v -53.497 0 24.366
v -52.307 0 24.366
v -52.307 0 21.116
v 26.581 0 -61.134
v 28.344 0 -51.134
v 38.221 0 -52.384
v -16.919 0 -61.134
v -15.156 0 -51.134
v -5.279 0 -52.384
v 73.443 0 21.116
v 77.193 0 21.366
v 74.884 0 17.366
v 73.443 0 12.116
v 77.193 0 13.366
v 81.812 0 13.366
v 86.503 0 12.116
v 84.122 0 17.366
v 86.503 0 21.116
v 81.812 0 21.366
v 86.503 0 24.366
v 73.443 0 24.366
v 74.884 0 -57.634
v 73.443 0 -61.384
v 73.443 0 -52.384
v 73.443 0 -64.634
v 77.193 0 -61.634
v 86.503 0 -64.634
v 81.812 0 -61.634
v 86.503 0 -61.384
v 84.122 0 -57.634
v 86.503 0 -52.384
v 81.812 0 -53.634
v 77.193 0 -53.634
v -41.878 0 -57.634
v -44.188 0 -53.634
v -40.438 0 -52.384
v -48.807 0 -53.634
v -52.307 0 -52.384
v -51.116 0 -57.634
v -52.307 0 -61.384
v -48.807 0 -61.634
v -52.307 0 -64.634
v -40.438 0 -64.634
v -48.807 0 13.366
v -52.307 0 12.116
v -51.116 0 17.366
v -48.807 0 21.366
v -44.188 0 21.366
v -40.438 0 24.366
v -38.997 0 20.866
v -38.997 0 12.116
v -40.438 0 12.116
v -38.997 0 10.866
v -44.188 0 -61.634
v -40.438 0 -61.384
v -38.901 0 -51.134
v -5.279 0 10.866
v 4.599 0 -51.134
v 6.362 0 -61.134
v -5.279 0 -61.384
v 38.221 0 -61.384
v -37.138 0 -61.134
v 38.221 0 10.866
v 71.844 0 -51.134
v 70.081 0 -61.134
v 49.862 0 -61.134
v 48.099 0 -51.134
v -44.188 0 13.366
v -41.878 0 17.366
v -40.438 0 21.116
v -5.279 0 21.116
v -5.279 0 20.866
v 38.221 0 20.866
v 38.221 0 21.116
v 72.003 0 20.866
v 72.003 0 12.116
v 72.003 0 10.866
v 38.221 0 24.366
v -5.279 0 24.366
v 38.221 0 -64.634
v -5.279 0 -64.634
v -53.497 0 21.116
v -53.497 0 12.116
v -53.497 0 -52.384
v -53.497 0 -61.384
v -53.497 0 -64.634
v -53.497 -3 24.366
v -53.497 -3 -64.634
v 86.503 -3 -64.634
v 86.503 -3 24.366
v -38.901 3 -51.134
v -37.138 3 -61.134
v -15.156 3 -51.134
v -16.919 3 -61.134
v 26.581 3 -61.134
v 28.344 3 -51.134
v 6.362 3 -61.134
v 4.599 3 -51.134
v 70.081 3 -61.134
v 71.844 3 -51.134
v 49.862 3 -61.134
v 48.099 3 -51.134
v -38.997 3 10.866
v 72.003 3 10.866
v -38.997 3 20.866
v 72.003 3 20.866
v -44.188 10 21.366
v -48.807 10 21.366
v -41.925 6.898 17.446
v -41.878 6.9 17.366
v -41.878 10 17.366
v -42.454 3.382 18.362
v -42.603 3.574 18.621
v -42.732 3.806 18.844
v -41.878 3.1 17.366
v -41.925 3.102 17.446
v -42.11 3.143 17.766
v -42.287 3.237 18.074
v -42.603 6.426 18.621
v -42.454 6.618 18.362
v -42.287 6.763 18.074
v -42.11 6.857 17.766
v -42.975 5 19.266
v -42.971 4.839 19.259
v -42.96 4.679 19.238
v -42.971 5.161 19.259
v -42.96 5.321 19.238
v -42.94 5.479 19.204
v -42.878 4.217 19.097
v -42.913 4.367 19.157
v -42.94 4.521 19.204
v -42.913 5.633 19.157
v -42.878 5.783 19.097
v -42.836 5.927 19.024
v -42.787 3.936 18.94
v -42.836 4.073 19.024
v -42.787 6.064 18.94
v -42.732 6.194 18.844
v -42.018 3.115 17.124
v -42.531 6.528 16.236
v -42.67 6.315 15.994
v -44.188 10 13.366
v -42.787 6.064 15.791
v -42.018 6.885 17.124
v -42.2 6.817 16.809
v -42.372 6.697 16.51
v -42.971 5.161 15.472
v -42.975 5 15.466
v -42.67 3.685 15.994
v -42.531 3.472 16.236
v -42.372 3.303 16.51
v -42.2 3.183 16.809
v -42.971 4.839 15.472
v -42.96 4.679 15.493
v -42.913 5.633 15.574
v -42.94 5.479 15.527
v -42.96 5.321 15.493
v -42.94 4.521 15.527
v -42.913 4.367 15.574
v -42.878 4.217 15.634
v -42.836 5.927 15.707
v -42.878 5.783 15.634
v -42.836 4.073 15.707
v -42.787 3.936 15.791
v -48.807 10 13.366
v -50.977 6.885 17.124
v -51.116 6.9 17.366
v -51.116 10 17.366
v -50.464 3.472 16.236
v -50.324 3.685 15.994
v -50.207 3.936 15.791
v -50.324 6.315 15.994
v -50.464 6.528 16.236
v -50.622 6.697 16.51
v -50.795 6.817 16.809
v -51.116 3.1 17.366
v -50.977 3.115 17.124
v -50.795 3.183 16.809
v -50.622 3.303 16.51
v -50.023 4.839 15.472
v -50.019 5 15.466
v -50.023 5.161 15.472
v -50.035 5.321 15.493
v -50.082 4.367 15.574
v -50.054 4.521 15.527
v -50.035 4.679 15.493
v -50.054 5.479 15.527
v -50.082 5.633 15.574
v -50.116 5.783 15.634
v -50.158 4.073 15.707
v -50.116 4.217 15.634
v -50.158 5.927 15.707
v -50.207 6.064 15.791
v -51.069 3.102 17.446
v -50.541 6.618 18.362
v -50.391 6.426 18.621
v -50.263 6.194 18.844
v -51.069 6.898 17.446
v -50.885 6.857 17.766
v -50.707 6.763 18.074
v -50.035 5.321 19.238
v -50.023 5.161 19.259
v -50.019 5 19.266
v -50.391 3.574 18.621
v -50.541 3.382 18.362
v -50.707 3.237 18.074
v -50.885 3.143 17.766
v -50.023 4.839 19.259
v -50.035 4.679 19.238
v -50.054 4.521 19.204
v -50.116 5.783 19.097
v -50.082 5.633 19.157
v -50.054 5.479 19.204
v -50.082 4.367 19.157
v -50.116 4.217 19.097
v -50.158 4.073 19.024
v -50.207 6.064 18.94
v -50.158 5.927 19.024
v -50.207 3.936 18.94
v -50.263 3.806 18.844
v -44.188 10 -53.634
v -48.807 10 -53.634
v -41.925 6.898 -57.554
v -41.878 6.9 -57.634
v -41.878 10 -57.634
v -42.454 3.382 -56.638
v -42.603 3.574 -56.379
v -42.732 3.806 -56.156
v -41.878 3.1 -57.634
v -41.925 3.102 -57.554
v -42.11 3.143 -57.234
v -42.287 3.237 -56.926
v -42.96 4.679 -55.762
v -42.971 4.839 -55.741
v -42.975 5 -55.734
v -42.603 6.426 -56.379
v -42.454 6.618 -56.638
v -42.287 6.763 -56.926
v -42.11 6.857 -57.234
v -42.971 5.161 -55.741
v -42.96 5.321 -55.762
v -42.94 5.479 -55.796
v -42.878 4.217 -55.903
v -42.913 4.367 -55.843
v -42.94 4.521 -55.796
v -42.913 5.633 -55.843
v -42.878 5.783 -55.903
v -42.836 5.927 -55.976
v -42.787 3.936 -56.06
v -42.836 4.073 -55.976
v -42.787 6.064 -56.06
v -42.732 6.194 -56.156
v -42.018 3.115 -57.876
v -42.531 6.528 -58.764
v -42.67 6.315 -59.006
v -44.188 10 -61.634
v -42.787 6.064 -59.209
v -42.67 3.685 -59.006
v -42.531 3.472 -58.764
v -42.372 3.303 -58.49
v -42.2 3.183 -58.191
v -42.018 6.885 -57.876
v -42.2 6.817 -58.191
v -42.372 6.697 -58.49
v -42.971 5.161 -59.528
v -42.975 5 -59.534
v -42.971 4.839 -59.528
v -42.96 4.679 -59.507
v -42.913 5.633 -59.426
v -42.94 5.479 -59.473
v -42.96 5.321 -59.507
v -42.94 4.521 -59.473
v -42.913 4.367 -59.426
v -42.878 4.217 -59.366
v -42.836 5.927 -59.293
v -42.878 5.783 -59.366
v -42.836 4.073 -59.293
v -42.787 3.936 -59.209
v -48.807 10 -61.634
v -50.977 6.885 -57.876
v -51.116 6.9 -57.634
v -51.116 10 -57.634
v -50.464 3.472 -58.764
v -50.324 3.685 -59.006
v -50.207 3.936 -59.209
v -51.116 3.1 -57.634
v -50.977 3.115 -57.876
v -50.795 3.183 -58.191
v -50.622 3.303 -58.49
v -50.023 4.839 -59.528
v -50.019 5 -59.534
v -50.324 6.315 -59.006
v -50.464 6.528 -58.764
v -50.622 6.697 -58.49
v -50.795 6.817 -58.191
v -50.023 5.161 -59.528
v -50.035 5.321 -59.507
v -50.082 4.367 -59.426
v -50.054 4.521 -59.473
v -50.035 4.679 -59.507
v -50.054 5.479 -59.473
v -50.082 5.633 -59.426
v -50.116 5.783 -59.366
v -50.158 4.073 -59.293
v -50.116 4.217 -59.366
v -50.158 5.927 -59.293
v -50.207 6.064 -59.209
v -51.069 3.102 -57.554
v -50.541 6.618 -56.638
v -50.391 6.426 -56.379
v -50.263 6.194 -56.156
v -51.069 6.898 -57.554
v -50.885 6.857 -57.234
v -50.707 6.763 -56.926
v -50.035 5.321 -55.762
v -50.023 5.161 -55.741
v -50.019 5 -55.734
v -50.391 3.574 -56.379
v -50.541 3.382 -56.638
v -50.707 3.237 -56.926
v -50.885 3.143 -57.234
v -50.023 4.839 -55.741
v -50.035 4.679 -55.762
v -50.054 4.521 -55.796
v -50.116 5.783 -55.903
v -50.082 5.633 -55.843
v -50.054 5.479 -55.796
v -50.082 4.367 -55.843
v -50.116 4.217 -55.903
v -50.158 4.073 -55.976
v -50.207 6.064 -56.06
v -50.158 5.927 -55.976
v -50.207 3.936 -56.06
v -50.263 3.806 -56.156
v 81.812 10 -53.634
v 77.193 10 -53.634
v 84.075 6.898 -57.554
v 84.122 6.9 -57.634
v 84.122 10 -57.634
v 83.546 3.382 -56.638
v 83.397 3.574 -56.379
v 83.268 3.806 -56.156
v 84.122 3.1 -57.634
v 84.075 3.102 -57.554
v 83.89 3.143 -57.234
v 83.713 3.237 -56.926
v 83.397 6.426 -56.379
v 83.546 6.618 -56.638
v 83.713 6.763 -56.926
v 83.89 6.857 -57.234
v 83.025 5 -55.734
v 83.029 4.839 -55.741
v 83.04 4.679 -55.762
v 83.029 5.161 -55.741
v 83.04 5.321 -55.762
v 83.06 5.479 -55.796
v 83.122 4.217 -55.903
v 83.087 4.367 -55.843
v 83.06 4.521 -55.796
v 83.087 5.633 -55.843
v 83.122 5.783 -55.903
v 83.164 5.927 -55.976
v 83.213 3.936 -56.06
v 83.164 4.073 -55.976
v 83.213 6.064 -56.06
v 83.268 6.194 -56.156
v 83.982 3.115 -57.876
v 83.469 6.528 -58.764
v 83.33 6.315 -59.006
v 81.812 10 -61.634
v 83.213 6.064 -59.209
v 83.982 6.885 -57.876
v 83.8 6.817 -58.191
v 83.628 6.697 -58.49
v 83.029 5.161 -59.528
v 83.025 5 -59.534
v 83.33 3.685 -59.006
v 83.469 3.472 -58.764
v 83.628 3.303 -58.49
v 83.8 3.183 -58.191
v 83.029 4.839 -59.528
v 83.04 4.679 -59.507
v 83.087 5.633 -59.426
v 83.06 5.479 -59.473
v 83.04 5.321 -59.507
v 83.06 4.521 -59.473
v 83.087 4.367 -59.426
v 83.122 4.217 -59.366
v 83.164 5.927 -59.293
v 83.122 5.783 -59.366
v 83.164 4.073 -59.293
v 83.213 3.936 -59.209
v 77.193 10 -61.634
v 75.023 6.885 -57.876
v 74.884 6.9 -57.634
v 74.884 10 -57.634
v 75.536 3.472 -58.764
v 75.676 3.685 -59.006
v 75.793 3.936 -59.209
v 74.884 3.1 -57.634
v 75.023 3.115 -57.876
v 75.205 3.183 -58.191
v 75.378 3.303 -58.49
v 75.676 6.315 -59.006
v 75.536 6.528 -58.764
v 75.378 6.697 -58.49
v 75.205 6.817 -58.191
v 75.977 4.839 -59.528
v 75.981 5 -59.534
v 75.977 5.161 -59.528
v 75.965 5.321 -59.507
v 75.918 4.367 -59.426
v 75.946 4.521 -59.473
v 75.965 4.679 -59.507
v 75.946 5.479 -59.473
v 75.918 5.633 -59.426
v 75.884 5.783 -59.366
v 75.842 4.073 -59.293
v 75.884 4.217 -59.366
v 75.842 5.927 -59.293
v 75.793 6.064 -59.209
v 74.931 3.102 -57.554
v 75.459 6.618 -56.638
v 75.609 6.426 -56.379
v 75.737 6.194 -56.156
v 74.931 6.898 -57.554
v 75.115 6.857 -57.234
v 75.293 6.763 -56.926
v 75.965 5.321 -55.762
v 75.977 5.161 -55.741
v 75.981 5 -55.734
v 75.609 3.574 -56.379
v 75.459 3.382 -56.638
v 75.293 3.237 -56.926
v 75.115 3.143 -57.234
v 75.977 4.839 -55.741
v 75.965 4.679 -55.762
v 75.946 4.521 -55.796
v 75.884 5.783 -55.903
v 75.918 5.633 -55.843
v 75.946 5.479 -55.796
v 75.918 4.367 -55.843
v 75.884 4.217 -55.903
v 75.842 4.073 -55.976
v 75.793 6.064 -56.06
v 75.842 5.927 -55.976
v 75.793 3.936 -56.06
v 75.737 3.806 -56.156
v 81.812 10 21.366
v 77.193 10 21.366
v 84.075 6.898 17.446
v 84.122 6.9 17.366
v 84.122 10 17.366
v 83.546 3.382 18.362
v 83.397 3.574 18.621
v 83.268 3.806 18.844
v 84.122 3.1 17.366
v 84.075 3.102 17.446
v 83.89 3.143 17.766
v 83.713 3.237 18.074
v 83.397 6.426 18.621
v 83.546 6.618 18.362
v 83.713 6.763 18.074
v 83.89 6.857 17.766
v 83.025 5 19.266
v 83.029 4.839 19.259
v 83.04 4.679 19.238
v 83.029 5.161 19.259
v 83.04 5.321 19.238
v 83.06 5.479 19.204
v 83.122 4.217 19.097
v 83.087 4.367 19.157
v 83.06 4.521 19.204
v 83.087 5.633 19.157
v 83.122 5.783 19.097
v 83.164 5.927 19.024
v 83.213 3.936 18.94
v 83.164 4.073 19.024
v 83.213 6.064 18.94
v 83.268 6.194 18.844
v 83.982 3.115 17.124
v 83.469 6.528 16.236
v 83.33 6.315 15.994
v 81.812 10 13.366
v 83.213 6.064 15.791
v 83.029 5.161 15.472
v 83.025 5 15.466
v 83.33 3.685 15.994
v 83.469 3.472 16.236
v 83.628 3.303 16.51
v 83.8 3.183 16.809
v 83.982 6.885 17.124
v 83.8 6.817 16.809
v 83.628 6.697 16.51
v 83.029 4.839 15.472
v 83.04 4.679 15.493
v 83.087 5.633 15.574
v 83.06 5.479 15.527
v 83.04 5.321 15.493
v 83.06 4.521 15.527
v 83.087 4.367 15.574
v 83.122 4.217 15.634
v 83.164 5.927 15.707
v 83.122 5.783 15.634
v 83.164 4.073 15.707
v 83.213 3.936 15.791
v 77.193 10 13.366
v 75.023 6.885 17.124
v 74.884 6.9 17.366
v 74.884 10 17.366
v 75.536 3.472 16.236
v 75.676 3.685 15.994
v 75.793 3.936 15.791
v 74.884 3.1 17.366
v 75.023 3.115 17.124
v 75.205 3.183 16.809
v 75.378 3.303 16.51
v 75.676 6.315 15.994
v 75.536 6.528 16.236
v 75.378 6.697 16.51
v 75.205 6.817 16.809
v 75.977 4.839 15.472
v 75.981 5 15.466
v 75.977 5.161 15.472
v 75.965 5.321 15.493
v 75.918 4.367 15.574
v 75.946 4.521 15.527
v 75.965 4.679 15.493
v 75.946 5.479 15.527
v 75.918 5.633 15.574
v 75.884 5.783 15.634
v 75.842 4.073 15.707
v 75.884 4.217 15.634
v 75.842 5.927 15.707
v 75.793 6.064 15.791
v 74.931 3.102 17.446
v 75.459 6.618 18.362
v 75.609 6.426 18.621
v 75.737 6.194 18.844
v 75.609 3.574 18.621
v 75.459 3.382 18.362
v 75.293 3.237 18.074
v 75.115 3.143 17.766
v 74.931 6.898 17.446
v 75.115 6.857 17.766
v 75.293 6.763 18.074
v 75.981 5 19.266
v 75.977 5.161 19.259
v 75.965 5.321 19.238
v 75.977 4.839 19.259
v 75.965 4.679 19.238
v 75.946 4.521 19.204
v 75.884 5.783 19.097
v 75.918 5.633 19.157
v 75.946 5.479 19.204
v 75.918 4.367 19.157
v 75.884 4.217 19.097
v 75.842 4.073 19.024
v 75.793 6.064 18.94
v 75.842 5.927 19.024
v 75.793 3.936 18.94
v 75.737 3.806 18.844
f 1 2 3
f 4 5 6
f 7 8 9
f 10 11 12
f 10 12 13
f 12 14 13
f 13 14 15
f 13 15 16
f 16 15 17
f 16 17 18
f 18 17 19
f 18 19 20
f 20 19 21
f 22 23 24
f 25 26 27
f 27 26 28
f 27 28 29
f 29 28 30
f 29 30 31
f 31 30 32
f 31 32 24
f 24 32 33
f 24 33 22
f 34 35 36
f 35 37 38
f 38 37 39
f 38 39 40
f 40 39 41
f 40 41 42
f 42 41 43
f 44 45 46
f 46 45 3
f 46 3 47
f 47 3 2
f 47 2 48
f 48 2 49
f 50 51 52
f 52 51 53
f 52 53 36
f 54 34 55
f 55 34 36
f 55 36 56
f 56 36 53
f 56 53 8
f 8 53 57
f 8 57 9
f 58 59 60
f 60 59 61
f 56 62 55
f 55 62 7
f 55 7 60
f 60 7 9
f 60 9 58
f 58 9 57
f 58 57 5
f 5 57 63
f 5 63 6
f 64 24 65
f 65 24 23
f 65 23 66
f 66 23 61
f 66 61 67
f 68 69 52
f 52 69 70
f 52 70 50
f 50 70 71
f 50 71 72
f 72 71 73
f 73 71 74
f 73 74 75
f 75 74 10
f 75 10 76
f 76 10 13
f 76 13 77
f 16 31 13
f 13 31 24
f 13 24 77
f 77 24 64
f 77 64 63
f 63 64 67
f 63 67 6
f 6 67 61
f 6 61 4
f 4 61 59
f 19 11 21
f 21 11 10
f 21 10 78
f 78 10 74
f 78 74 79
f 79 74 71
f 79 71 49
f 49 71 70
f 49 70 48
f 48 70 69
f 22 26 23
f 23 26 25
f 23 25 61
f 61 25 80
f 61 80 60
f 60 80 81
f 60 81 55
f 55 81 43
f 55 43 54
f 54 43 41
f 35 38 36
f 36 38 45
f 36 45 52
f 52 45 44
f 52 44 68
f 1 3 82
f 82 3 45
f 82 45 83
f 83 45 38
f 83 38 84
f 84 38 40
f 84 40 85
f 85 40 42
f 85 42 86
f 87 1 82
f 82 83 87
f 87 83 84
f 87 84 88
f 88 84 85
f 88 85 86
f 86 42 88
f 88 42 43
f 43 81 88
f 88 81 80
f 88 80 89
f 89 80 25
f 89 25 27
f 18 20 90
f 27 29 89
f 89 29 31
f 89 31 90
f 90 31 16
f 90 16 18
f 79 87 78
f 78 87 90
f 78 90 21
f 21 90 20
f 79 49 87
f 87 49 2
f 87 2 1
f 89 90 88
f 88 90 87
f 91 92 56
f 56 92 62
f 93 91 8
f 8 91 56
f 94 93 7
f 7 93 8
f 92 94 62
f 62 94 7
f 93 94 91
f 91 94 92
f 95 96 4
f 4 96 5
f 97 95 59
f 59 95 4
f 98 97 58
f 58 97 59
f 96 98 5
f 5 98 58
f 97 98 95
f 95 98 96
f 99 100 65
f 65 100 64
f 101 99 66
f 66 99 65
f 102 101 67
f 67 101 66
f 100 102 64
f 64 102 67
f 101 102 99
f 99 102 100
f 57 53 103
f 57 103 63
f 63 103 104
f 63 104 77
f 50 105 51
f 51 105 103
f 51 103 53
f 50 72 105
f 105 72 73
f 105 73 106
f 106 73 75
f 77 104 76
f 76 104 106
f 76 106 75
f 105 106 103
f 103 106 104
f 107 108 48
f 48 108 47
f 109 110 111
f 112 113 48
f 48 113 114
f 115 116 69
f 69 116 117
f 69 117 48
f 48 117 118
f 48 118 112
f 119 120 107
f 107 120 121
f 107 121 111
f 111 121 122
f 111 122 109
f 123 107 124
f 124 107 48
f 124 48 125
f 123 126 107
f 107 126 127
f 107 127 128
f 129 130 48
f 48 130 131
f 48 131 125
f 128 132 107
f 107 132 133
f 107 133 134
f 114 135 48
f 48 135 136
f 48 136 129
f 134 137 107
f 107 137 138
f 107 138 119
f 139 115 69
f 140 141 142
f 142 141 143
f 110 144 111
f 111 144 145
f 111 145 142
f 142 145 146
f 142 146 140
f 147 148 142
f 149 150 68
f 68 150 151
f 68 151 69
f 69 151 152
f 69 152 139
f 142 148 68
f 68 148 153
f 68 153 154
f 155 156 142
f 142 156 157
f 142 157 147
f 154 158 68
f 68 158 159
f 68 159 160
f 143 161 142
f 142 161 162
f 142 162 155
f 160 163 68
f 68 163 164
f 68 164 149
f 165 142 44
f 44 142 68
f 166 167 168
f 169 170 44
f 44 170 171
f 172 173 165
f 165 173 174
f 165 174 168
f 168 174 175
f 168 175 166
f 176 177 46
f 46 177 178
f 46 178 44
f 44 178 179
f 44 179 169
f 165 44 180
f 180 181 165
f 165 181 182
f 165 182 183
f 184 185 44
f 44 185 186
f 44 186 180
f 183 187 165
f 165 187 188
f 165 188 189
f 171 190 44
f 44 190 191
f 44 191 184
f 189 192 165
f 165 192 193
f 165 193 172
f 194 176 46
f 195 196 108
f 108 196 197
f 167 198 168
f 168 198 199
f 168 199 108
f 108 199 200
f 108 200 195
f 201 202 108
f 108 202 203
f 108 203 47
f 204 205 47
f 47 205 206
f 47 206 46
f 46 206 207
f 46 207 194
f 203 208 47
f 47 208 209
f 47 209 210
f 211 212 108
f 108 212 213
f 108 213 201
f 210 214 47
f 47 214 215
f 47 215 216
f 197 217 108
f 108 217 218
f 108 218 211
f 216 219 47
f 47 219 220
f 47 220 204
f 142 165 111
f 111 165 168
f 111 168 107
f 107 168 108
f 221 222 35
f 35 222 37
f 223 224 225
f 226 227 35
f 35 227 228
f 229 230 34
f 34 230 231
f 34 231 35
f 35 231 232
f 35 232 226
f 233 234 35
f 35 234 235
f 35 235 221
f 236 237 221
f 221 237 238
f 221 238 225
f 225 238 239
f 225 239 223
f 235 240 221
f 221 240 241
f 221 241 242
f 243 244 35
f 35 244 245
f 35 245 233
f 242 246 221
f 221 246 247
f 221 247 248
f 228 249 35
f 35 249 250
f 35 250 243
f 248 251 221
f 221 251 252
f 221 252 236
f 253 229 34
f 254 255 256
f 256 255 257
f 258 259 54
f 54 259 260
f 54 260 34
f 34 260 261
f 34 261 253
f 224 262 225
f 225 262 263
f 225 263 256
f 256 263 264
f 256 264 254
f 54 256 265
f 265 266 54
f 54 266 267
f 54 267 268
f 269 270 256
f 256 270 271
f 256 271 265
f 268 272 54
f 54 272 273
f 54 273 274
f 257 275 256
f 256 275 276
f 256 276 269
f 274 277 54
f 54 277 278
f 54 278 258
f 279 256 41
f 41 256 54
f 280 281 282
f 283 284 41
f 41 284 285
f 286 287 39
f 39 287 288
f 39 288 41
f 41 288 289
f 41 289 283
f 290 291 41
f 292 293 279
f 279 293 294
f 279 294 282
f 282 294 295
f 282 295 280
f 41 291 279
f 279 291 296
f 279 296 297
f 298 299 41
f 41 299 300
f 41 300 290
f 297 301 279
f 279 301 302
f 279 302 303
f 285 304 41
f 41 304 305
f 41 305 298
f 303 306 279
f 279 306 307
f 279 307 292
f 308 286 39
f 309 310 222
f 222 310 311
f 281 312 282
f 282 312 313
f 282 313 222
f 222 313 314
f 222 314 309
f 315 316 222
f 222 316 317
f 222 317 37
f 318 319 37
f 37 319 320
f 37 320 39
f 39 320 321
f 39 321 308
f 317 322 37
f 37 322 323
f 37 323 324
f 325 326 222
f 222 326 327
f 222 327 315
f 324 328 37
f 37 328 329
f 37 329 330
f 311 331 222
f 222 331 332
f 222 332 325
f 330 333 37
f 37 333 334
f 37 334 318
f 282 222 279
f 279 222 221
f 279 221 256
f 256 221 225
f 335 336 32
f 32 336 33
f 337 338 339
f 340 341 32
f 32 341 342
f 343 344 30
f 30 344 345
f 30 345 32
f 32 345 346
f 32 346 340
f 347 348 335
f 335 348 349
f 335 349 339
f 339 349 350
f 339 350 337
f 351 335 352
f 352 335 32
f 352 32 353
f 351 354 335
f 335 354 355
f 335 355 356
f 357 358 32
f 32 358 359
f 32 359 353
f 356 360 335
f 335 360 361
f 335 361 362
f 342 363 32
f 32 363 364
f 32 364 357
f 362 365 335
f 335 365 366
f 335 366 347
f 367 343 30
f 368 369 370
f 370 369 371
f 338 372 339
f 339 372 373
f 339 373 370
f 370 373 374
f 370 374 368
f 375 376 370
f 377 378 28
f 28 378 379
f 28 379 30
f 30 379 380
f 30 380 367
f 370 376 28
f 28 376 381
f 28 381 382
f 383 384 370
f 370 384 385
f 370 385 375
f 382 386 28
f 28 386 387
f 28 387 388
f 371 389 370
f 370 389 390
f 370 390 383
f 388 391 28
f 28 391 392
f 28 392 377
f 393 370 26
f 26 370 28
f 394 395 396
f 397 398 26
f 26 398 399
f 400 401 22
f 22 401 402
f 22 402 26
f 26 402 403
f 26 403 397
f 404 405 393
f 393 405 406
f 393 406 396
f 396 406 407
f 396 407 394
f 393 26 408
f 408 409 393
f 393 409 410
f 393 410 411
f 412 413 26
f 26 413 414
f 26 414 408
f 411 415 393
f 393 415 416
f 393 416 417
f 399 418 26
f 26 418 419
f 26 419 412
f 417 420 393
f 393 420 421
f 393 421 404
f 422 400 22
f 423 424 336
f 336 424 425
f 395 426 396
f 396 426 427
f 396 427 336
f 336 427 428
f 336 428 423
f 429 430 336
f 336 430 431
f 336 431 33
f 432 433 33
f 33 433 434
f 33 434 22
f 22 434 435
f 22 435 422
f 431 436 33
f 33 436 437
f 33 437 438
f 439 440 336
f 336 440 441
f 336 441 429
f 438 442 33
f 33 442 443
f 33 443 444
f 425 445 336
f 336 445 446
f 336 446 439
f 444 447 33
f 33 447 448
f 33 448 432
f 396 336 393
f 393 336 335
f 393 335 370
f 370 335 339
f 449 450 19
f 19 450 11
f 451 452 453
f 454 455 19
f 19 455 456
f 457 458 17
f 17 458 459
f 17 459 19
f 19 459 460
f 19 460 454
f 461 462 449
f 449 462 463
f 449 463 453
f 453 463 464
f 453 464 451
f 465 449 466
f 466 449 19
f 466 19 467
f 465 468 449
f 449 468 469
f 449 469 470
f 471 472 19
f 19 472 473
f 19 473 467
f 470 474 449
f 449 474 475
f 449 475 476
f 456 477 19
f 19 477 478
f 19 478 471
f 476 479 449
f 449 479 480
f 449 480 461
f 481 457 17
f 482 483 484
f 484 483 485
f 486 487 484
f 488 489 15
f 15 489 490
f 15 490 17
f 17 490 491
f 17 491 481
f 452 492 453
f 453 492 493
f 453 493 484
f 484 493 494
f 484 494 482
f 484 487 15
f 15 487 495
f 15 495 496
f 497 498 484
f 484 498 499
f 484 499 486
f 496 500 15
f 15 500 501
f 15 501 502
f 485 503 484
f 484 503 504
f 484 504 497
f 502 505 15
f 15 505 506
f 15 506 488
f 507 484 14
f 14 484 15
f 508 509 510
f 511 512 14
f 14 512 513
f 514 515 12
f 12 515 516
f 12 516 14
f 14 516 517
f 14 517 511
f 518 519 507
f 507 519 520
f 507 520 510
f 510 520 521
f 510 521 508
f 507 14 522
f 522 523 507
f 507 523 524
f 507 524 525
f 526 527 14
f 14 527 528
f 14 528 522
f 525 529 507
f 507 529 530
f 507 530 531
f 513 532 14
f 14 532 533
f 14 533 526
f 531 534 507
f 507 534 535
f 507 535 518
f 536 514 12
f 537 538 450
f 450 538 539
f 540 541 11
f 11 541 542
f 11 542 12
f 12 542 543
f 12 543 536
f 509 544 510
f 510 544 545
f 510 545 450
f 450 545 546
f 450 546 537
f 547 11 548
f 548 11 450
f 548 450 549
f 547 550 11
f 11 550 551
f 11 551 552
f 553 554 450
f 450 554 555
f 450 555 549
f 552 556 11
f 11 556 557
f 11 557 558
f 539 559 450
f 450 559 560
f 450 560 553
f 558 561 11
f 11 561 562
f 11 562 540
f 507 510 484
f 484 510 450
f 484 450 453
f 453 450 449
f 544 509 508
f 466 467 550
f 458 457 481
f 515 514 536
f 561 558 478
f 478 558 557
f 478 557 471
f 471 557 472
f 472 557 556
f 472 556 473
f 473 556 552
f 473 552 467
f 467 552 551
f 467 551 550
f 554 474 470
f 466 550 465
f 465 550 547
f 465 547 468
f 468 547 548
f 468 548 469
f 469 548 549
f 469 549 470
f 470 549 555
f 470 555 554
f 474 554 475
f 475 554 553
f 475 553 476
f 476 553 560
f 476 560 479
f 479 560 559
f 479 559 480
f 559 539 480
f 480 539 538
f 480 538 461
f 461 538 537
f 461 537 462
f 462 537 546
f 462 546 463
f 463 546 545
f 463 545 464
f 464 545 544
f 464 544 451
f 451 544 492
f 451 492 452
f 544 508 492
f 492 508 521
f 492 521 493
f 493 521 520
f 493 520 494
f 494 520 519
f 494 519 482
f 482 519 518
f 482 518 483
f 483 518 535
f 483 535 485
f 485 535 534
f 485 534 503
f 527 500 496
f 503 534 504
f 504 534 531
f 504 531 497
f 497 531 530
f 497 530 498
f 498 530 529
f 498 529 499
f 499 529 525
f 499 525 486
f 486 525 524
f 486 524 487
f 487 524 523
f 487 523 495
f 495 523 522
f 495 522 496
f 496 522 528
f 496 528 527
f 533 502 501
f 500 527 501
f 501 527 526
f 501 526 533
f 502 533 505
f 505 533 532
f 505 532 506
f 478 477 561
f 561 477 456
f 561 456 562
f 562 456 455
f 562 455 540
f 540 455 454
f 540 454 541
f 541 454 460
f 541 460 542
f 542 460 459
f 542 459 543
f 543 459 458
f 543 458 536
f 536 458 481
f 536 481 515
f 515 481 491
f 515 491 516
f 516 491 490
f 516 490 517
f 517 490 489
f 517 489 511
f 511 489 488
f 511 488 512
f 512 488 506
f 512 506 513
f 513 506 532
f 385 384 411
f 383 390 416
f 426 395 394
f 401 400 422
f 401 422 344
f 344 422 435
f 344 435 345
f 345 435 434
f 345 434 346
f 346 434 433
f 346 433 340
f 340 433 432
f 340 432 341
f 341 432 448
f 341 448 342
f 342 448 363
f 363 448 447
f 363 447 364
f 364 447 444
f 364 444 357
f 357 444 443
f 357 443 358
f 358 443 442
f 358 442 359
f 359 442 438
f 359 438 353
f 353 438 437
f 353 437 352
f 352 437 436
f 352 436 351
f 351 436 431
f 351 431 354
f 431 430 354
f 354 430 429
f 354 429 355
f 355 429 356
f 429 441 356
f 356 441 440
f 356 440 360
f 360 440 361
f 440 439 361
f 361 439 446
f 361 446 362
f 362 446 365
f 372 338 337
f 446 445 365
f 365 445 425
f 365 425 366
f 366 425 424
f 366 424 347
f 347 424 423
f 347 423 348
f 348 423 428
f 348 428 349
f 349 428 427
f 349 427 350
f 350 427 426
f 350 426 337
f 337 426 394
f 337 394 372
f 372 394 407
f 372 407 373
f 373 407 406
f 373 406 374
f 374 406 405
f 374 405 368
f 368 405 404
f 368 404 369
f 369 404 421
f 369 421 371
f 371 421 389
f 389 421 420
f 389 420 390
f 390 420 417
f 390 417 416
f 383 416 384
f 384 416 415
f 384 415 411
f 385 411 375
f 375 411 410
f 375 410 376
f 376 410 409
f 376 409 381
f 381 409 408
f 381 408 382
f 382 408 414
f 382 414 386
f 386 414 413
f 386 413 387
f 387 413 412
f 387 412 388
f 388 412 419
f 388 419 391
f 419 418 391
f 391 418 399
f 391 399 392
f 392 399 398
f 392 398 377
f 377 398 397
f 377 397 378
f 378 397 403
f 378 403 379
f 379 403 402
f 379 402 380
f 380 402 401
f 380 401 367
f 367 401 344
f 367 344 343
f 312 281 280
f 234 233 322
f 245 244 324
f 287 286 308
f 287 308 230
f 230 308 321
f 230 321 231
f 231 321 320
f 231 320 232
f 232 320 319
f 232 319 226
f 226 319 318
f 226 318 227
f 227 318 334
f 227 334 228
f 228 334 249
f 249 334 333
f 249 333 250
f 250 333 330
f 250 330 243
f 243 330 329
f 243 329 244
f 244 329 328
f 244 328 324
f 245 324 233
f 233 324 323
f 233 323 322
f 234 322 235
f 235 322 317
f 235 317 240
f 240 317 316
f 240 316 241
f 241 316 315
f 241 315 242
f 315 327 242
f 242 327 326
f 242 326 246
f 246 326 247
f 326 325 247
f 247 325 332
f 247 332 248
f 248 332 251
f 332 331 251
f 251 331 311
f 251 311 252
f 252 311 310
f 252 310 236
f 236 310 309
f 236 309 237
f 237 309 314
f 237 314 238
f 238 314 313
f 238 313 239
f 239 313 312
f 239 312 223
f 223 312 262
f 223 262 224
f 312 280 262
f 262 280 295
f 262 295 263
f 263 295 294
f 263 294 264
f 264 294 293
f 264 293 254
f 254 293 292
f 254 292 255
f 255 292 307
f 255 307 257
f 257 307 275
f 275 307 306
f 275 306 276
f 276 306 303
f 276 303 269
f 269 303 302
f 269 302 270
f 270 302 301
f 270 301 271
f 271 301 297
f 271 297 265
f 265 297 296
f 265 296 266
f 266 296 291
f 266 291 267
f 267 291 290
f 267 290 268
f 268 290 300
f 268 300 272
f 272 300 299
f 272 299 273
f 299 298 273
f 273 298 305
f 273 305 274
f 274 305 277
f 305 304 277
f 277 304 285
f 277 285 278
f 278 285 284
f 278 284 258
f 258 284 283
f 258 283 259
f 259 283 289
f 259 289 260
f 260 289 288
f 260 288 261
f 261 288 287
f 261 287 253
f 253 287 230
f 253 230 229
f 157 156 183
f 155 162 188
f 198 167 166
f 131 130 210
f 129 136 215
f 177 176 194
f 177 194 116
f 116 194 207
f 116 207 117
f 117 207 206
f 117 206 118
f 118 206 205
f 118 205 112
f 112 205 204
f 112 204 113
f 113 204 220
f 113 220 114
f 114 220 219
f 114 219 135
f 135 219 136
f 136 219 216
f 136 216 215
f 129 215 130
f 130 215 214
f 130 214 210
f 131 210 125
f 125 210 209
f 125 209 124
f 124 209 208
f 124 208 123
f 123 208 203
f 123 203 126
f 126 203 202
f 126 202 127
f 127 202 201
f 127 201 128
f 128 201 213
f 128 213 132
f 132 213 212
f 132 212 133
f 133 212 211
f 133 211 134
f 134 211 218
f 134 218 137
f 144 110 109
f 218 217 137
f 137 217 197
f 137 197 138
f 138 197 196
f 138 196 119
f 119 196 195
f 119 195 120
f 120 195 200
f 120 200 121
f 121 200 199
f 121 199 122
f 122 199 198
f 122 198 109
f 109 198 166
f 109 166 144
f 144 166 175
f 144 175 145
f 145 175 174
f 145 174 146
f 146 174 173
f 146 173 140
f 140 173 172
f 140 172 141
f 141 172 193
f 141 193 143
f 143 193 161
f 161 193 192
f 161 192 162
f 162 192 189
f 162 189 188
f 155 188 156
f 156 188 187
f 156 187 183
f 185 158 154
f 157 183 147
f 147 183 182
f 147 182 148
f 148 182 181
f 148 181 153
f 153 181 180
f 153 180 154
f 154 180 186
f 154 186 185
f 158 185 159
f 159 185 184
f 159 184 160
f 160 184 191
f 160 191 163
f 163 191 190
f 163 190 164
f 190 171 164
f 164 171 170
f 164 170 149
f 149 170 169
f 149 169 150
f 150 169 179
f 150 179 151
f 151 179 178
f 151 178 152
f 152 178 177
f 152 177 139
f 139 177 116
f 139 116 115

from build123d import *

# Parameters (mm, degrees)
SKETCH3_W           = 140
SKETCH3_H           = 89
BOSS_EXTRUDE1_DEPTH = 3
SKETCH2_W           = 111
SKETCH2_H           = 10
BOSS_EXTRUDE3_DEPTH = 3
BOSS_EXTRUDE4_DEPTH = 10
SKETCH4_R           = 1.9
CUT_EXTRUDE1_DEPTH  = 155.523815545


with BuildPart() as part:
    # Sketch3 → Boss-Extrude1 (new body)
    with BuildSketch(Plane(origin=(0, 0, 0), x_dir=(1, 0, 0), z_dir=(0, 1, 0))):
        with Locations((16.502784142, 20.134430227)):
            Rectangle(SKETCH3_W, SKETCH3_H)
    extrude(amount=-BOSS_EXTRUDE1_DEPTH)

    # Sketch2 → Boss-Extrude3 (add)
    with BuildSketch(Plane(origin=(0, 0, 0), x_dir=(1, 0, 0), z_dir=(0, 1, 0))):
        Polygon((-16.919207001, 61.134430227), (-37.138069254, 61.134430227), (-38.901339061, 51.134430227), (-15.155937194, 51.134430227), align=None)
        Polygon((4.598660939, 51.134430227), (28.344062806, 51.134430227), (26.580792999, 61.134430227), (6.361930746, 61.134430227), align=None)
        Polygon((48.098660939, 51.134430227), (71.844062806, 51.134430227), (70.080792999, 61.134430227), (49.861930746, 61.134430227), align=None)
        with Locations((16.502784142, -15.865569773)):
            Rectangle(SKETCH2_W, SKETCH2_H)
    extrude(amount=BOSS_EXTRUDE3_DEPTH)

    # Sketch2<4> → Boss-Extrude4 (add)
    with BuildSketch(Plane(origin=(0, 0, 0), x_dir=(1, 0, 0), z_dir=(0, 1, 0))):
        Polygon((-44.187814781, -13.365569773), (-48.806616934, -13.365569773), (-51.116018011, -17.365569773), (-48.806616934, -21.365569773), (-44.187814781, -21.365569773), (-41.878413704, -17.365569773), align=None)
        Polygon((-48.806616934, 53.634430227), (-44.187814781, 53.634430227), (-41.878413704, 57.634430227), (-44.187814781, 61.634430227), (-48.806616934, 61.634430227), (-51.116018011, 57.634430227), align=None)
        Polygon((74.883981989, 57.634430227), (77.193383066, 53.634430227), (81.812185219, 53.634430227), (84.121586296, 57.634430227), (81.812185219, 61.634430227), (77.193383066, 61.634430227), align=None)
        Polygon((81.812185219, -21.365569773), (84.121586296, -17.365569773), (81.812185219, -13.365569773), (77.193383066, -13.365569773), (74.883981989, -17.365569773), (77.193383066, -21.365569773), align=None)
    extrude(amount=BOSS_EXTRUDE4_DEPTH)

    # Sketch4 → Cut-Extrude1 (cut, through all)
    with BuildSketch(Plane.ZY.offset(53.497215858)):
        with Locations((-57.634430227, 5)):
            Circle(SKETCH4_R)
        with Locations((17.365569773, 5)):
            Circle(SKETCH4_R)
    extrude(amount=-CUT_EXTRUDE1_DEPTH, mode=Mode.SUBTRACT)


solid = part.part
